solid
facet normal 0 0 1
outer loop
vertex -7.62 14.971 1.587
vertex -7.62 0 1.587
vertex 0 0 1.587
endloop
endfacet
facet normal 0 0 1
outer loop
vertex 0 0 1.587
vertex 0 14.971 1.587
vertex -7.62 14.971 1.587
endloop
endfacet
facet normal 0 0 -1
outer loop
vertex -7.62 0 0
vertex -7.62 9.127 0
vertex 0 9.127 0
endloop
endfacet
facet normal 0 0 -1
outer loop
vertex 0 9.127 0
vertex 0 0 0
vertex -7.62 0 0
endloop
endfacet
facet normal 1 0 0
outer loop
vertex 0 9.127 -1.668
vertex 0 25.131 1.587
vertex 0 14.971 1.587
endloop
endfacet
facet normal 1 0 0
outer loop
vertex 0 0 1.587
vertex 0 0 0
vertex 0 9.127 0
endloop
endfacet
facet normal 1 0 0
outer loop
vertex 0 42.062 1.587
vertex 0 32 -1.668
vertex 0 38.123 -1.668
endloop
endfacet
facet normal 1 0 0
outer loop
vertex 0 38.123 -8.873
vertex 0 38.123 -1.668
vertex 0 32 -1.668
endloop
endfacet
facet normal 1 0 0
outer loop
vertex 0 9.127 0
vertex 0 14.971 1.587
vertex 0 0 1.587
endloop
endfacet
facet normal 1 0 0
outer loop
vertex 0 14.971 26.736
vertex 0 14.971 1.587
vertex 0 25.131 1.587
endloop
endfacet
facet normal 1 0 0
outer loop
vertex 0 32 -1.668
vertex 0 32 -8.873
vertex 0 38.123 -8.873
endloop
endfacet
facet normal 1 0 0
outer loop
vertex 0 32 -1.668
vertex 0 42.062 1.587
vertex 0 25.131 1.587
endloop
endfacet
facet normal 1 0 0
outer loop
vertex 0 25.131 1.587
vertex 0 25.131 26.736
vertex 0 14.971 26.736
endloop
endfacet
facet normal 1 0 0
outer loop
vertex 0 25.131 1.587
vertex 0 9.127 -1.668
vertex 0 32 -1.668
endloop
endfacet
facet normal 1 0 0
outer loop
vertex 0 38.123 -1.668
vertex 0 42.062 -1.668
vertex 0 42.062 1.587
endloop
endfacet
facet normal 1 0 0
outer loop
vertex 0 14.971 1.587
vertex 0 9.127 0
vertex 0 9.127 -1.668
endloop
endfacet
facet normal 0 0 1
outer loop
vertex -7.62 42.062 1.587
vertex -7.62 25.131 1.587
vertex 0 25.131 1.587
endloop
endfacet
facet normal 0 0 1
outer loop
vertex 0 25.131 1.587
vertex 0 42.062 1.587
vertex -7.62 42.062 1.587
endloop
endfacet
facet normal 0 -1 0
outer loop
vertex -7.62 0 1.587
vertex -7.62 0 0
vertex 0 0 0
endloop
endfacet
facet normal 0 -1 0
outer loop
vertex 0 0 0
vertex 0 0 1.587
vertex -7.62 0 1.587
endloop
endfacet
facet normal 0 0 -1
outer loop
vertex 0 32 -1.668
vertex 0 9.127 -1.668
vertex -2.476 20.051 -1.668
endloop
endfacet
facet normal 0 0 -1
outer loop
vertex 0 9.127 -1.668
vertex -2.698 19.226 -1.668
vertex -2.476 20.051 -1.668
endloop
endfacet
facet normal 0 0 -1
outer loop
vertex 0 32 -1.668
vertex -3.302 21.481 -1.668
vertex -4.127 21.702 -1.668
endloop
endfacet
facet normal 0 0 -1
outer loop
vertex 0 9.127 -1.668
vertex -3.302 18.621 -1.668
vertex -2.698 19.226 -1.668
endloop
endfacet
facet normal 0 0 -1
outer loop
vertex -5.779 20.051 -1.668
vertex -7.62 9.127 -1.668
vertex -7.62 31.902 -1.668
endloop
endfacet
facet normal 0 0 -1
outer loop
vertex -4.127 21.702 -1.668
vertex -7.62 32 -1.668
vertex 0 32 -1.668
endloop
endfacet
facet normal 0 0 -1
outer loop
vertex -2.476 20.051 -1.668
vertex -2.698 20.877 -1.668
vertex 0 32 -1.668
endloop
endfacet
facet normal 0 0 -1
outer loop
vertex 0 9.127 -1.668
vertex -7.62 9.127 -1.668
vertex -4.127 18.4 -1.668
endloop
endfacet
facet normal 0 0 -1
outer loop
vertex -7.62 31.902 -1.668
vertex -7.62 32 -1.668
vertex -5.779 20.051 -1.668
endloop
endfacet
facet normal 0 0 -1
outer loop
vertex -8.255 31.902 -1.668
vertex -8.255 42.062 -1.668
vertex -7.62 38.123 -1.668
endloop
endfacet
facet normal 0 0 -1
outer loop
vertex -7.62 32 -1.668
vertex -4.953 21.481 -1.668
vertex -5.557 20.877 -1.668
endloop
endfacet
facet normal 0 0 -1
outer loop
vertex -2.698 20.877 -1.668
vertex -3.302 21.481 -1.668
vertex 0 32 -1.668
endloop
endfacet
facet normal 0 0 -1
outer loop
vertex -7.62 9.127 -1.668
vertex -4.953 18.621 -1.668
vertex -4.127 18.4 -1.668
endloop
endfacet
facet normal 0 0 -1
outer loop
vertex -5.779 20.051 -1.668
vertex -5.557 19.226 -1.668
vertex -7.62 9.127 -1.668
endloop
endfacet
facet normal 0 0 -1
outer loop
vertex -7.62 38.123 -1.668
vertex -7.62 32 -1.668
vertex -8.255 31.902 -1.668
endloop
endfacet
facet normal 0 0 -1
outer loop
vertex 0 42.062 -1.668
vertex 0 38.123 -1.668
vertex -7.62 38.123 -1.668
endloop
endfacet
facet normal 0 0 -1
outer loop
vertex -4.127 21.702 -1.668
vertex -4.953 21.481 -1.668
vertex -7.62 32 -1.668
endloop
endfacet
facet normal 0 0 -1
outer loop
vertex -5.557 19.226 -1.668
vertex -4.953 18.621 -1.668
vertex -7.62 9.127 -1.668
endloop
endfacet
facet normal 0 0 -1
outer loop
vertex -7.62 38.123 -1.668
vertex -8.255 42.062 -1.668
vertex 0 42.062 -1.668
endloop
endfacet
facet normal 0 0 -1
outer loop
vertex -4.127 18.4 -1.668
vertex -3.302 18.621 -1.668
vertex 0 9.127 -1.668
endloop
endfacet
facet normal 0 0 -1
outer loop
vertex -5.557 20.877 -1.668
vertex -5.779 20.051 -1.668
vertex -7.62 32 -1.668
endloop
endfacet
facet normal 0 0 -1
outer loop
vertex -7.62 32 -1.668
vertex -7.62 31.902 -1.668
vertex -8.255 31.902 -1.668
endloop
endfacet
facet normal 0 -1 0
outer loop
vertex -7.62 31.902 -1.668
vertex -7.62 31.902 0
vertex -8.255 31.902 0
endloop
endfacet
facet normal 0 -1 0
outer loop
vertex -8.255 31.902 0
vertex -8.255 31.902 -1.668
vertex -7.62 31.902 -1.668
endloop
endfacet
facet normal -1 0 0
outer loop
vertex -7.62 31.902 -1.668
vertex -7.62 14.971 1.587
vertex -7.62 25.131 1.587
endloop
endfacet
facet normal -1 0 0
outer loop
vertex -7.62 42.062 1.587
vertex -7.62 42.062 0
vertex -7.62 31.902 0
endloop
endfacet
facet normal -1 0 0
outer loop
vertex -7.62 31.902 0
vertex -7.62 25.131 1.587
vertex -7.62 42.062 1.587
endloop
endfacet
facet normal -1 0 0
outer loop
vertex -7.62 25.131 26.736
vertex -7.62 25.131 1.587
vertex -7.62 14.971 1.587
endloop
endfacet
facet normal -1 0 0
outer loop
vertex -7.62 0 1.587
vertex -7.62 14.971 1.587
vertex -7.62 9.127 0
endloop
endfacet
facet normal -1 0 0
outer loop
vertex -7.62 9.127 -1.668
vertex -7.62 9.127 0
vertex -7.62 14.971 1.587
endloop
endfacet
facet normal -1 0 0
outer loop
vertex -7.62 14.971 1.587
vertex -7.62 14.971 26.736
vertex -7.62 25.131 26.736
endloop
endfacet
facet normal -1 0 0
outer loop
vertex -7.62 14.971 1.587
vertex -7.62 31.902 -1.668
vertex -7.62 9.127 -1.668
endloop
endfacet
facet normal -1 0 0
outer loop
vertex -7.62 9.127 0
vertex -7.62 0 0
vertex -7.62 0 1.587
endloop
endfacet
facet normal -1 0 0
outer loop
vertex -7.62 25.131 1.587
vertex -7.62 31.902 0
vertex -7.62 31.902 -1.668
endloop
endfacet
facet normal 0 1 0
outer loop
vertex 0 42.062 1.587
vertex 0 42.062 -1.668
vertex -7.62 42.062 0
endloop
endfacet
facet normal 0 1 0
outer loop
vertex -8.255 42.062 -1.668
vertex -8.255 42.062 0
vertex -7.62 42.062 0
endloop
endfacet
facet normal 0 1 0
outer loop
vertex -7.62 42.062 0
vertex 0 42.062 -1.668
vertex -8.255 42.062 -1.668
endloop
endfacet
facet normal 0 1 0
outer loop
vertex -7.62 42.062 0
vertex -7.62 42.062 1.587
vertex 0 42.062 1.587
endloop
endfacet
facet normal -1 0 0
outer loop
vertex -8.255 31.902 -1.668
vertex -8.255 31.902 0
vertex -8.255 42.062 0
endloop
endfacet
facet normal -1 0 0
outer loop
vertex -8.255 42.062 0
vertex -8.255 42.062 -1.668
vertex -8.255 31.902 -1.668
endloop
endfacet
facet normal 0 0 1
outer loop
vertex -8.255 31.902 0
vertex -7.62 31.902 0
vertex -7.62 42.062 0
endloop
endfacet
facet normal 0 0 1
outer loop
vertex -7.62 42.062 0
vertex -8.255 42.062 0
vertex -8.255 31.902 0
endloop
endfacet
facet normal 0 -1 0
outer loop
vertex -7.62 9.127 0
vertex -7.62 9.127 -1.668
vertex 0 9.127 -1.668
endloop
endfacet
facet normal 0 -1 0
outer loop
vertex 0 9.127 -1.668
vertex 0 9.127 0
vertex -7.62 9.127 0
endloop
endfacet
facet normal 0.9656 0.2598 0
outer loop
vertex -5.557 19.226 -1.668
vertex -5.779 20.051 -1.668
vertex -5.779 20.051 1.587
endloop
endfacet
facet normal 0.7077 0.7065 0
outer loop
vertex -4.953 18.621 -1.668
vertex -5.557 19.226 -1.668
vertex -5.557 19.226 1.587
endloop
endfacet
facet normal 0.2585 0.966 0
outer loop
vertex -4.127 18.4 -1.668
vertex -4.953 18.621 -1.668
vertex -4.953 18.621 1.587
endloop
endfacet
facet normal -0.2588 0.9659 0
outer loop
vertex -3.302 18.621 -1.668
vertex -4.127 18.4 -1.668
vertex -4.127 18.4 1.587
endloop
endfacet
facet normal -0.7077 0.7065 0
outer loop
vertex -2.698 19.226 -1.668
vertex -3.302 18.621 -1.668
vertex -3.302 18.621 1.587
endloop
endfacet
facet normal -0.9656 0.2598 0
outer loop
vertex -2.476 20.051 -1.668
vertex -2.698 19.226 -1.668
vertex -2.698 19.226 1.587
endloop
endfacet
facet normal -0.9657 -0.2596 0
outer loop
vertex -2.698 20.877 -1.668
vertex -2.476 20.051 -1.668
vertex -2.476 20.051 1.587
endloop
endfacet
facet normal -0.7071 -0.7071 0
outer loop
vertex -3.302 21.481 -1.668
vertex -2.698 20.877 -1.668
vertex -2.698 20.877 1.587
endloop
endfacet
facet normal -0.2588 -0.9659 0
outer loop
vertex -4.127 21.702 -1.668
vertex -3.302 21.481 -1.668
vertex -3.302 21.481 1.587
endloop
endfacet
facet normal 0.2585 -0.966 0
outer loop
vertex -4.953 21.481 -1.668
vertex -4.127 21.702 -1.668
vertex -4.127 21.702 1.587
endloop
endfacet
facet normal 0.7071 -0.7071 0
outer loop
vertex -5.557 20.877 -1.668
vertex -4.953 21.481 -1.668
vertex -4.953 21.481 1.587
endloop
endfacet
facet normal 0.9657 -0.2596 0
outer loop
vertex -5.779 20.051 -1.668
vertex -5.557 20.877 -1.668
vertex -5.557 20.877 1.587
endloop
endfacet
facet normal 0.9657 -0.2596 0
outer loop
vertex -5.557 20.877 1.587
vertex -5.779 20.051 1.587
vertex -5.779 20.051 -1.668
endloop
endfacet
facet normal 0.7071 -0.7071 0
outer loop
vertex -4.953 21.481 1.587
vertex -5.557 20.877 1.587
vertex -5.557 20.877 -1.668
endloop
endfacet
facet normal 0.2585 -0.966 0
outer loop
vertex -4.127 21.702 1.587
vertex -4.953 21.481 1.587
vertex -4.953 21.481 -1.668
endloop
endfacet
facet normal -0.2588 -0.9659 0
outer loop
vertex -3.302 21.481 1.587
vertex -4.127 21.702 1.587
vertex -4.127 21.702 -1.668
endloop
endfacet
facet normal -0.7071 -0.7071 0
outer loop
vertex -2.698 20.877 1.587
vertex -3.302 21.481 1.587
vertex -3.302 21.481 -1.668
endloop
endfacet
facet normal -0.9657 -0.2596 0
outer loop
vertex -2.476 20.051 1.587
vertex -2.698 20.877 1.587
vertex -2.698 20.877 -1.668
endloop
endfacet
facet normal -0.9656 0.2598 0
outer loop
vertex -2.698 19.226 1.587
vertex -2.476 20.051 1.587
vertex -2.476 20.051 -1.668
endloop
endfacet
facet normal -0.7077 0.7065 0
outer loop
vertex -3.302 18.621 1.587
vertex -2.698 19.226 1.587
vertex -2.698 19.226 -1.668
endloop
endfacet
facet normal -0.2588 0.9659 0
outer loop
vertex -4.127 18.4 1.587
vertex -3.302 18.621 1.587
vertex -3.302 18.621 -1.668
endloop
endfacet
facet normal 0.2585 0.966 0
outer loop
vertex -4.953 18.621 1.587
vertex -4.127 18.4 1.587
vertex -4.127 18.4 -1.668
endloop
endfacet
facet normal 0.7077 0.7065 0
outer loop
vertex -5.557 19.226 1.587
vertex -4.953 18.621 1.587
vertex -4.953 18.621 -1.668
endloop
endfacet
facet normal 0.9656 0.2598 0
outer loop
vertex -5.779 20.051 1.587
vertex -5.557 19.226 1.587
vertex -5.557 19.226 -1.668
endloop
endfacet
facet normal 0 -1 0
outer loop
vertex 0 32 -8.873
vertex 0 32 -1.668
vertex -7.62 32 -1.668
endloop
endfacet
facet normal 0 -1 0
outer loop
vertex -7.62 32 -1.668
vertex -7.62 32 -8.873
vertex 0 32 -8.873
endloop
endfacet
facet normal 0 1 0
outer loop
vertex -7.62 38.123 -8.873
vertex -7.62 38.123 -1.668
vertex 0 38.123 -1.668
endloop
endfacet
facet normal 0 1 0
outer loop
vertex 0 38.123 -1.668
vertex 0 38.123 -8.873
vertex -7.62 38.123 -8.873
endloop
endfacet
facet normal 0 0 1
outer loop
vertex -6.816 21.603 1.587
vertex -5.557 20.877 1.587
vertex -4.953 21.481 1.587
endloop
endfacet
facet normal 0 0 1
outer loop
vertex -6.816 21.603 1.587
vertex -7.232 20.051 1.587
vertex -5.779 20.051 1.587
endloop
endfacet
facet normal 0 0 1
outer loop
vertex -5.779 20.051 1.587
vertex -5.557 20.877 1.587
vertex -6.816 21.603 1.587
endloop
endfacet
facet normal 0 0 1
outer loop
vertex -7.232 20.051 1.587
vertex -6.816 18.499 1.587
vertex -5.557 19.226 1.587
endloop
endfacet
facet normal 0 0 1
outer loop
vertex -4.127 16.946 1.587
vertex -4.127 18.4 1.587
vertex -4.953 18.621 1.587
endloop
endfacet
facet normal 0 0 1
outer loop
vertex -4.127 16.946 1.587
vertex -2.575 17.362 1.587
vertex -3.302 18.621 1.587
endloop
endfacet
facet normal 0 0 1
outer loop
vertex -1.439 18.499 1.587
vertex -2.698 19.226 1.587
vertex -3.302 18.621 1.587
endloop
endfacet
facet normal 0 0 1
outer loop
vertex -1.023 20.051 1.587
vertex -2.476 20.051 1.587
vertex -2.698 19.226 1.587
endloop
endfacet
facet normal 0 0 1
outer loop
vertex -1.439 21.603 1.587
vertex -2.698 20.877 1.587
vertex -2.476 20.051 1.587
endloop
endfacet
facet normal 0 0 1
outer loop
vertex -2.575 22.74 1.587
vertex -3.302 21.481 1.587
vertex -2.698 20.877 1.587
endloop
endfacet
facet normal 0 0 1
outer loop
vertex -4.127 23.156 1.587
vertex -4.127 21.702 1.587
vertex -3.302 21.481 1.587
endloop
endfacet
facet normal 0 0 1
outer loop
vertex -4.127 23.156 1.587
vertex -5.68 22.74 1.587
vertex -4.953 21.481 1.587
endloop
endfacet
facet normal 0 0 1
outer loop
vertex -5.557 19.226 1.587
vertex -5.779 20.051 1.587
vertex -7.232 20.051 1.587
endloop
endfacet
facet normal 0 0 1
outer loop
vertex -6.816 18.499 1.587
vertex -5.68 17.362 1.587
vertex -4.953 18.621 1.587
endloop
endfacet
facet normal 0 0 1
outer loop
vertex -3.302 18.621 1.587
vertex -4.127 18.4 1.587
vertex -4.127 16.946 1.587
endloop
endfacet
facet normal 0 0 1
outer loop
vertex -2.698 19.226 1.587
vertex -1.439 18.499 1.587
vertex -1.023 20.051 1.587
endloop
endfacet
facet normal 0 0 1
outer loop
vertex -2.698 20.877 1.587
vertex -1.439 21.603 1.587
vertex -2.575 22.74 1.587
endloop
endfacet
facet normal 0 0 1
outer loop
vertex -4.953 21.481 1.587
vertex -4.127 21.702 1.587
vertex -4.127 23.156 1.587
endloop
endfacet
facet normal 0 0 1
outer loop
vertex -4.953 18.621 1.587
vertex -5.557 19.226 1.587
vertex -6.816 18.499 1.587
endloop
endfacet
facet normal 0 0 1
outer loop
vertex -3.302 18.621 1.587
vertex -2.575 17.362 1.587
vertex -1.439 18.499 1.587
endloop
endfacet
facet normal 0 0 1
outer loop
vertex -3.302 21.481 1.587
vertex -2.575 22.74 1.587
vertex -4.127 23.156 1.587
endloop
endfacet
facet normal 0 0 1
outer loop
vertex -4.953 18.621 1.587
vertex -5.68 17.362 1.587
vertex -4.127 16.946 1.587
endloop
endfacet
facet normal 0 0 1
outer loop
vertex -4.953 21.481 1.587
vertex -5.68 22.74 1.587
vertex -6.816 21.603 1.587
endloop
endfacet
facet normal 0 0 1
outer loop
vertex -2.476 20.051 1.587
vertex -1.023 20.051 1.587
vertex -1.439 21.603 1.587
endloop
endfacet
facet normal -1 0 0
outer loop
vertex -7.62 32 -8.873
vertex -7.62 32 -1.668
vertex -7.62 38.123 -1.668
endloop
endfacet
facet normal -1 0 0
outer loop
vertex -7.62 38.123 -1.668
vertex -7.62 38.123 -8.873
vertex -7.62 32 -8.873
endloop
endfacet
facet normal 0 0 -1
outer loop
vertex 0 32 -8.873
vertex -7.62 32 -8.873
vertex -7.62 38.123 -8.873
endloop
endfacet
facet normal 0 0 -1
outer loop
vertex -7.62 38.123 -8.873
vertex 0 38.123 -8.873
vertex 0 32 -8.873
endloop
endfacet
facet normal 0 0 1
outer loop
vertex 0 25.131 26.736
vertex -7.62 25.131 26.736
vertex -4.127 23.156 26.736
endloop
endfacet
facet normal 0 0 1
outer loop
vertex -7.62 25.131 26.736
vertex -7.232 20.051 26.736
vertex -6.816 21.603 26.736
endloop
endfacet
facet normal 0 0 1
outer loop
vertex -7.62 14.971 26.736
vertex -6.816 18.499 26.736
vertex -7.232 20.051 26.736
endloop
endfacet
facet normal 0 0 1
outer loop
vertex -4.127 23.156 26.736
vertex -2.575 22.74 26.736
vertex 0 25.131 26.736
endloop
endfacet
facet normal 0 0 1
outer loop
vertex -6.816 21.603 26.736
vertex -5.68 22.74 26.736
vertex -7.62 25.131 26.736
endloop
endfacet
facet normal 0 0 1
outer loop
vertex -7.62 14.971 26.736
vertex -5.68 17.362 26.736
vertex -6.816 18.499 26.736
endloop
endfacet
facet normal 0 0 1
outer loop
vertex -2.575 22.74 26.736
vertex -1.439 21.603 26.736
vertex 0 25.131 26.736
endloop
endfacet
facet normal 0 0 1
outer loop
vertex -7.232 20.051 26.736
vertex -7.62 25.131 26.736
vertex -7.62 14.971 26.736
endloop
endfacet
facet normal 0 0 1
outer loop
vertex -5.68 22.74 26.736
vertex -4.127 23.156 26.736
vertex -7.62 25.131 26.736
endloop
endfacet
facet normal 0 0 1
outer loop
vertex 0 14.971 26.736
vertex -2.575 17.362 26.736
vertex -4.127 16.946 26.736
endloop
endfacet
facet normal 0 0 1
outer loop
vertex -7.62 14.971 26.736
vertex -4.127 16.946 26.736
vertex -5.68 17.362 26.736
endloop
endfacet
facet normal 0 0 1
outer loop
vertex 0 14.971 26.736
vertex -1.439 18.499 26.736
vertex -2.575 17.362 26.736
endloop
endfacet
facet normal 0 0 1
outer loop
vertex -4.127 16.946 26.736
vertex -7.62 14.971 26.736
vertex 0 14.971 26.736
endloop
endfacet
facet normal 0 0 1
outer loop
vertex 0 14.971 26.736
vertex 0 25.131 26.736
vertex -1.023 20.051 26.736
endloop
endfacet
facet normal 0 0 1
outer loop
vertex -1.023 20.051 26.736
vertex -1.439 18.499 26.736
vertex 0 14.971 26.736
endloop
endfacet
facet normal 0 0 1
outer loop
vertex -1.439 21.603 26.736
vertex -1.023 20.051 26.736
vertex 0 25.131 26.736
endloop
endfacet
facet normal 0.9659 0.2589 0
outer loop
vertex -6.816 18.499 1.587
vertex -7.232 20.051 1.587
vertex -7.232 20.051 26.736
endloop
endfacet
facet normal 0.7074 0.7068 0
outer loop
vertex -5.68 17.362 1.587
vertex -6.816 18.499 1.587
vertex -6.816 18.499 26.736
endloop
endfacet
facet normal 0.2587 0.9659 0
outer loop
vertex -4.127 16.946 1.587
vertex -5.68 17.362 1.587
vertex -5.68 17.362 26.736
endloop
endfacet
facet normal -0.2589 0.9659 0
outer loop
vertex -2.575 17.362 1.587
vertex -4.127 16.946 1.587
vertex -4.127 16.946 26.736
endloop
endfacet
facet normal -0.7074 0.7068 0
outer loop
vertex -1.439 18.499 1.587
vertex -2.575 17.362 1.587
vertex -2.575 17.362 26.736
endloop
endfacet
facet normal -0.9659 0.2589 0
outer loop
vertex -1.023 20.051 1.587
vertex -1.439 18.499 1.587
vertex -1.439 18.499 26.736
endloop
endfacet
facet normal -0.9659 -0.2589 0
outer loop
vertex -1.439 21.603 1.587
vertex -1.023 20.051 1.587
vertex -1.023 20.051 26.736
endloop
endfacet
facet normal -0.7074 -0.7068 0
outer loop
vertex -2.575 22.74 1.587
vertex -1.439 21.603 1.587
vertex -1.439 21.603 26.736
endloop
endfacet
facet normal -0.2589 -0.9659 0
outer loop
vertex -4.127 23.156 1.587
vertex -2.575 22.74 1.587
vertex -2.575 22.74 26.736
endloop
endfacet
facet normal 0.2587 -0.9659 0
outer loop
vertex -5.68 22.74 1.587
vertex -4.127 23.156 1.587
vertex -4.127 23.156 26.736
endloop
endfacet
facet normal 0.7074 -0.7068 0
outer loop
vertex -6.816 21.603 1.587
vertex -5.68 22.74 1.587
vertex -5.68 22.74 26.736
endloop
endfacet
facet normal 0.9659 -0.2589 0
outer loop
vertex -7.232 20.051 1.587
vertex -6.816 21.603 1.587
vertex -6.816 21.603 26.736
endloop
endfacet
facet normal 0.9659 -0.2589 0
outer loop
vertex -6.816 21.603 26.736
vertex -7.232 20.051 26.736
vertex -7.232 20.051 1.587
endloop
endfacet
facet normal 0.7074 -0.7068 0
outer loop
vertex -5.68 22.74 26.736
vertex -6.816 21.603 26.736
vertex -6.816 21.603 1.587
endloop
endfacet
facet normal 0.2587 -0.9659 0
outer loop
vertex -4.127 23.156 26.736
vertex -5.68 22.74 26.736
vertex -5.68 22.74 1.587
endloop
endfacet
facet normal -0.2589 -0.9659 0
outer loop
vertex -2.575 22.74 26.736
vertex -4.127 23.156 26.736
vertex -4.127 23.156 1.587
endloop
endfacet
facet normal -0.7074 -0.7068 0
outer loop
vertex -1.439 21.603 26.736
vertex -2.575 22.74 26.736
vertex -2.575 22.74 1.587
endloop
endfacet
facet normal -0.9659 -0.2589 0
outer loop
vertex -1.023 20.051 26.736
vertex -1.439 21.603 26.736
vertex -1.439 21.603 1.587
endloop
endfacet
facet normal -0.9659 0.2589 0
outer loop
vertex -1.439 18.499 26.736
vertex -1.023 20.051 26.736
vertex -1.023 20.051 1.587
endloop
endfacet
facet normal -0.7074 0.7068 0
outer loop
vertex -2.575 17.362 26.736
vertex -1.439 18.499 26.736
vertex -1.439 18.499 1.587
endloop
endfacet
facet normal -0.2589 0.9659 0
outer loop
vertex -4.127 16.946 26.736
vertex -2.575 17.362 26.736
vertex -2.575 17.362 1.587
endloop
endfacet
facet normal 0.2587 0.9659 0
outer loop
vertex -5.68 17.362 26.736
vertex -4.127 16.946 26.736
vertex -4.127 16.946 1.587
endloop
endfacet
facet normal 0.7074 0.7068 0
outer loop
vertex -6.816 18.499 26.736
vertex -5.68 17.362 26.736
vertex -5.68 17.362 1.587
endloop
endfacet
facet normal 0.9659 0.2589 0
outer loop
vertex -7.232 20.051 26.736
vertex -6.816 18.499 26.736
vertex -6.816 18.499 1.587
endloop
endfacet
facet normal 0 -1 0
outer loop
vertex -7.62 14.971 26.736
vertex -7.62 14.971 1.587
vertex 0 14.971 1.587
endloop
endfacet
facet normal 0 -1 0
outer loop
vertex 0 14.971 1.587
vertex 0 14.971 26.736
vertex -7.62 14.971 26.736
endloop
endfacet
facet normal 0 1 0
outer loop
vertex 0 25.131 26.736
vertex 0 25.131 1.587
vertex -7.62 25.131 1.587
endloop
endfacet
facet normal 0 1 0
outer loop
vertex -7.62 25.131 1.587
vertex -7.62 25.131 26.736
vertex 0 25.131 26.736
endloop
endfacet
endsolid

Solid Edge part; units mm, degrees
sketch "Sketch1" plane through (0, 0, 0) normal (0, 0, 1) x (1, 0, 0)
  line L0 (0, 0) -> (-7.62, 0)
  line L1 (-7.62, 0) -> (-7.62, 42.062)
  line L2 (-7.62, 42.062) -> (0, 42.062)
  line L3 (0, 42.062) -> (0, 0)
  dimension "D1" = 7.62
  dimension "D2" = 3.175
  dimension "D3" = 10.16
extrude "Protrusion1" add sketch "Sketch1" along normal blind 1.5875
sketch "Sketch2" plane through (-4.1275, 17.6405, 0) normal (0, 0, -1) x (0, 1, 0)
  line L0 (-8.5137, -3.4925) -> (14.2615, -3.4925)
  line L1 (-8.5137, 4.1275) -> (-8.5137, -3.4925)
  line L2 (14.2615, 4.1275) -> (-8.5137, 4.1275)
  line L3 (24.4215, 4.1275) -> (14.2615, 4.1275)
  line L4 (24.4215, -4.1275) -> (24.4215, 4.1275)
  line L5 (14.2615, -4.1275) -> (24.4215, -4.1275)
extrude "Protrusion2" add sketch "Sketch2" along normal up to vertex (1.6684 mm away) material side at (-7.67, 20.5144, 0)
sketch "Sketch3" plane through (-4.1275, 15.951, 0) normal (0, 0, -1) x (-1, 0, 0)
  circle A0 centre (0, 4.1) radius 1.651
  dimension "D1" = 3.302
extrude "Cutout1" cut sketch "Sketch3" against normal through all and the other way through all
sketch "Sketch4" plane through (-4.1275, 24.3244, -1.6684) normal (0, 0, -1) x (0, 1, 0)
  line L0 (7.6757, 4.1275) -> (13.7987, 4.1275)
  line L1 (13.7987, 4.1275) -> (13.7987, -3.4925)
  line L2 (13.7987, -3.4925) -> (7.6757, -3.4925)
  line L3 (7.6757, -3.4925) -> (7.6757, 4.1275)
extrude "ExtrudedProtrusion_3" add sketch "Sketch4" along normal blind 7.2044
sketch "Sketch5" plane through (-3.81, 21.031, 1.5875) normal (0, 0, 1) x (0, -1, 0)
  line L0 (-4.1, 3.175) -> (-4.1, -3.81)
  line L1 (-4.1, -3.81) -> (6.06, -3.81)
  line L2 (6.06, -3.81) -> (6.06, 3.175)
  line L3 (6.06, 3.81) -> (6.06, 3.175)
  line L4 (-4.1, 3.81) -> (6.06, 3.81)
  line L5 (-4.1, 3.175) -> (-4.1, 3.81)
extrude "ExtrudedProtrusion_4" add sketch "Sketch5" along normal blind 25.1481
sketch "Sketch6" plane through (-4.1275, 20.051, 1.5875) normal (0, 0, -1) x (0, 1, 0)
  circle A0 centre (0, 0) radius 3.105
extrude "Cutout2" cut sketch "Sketch6" against normal through all
